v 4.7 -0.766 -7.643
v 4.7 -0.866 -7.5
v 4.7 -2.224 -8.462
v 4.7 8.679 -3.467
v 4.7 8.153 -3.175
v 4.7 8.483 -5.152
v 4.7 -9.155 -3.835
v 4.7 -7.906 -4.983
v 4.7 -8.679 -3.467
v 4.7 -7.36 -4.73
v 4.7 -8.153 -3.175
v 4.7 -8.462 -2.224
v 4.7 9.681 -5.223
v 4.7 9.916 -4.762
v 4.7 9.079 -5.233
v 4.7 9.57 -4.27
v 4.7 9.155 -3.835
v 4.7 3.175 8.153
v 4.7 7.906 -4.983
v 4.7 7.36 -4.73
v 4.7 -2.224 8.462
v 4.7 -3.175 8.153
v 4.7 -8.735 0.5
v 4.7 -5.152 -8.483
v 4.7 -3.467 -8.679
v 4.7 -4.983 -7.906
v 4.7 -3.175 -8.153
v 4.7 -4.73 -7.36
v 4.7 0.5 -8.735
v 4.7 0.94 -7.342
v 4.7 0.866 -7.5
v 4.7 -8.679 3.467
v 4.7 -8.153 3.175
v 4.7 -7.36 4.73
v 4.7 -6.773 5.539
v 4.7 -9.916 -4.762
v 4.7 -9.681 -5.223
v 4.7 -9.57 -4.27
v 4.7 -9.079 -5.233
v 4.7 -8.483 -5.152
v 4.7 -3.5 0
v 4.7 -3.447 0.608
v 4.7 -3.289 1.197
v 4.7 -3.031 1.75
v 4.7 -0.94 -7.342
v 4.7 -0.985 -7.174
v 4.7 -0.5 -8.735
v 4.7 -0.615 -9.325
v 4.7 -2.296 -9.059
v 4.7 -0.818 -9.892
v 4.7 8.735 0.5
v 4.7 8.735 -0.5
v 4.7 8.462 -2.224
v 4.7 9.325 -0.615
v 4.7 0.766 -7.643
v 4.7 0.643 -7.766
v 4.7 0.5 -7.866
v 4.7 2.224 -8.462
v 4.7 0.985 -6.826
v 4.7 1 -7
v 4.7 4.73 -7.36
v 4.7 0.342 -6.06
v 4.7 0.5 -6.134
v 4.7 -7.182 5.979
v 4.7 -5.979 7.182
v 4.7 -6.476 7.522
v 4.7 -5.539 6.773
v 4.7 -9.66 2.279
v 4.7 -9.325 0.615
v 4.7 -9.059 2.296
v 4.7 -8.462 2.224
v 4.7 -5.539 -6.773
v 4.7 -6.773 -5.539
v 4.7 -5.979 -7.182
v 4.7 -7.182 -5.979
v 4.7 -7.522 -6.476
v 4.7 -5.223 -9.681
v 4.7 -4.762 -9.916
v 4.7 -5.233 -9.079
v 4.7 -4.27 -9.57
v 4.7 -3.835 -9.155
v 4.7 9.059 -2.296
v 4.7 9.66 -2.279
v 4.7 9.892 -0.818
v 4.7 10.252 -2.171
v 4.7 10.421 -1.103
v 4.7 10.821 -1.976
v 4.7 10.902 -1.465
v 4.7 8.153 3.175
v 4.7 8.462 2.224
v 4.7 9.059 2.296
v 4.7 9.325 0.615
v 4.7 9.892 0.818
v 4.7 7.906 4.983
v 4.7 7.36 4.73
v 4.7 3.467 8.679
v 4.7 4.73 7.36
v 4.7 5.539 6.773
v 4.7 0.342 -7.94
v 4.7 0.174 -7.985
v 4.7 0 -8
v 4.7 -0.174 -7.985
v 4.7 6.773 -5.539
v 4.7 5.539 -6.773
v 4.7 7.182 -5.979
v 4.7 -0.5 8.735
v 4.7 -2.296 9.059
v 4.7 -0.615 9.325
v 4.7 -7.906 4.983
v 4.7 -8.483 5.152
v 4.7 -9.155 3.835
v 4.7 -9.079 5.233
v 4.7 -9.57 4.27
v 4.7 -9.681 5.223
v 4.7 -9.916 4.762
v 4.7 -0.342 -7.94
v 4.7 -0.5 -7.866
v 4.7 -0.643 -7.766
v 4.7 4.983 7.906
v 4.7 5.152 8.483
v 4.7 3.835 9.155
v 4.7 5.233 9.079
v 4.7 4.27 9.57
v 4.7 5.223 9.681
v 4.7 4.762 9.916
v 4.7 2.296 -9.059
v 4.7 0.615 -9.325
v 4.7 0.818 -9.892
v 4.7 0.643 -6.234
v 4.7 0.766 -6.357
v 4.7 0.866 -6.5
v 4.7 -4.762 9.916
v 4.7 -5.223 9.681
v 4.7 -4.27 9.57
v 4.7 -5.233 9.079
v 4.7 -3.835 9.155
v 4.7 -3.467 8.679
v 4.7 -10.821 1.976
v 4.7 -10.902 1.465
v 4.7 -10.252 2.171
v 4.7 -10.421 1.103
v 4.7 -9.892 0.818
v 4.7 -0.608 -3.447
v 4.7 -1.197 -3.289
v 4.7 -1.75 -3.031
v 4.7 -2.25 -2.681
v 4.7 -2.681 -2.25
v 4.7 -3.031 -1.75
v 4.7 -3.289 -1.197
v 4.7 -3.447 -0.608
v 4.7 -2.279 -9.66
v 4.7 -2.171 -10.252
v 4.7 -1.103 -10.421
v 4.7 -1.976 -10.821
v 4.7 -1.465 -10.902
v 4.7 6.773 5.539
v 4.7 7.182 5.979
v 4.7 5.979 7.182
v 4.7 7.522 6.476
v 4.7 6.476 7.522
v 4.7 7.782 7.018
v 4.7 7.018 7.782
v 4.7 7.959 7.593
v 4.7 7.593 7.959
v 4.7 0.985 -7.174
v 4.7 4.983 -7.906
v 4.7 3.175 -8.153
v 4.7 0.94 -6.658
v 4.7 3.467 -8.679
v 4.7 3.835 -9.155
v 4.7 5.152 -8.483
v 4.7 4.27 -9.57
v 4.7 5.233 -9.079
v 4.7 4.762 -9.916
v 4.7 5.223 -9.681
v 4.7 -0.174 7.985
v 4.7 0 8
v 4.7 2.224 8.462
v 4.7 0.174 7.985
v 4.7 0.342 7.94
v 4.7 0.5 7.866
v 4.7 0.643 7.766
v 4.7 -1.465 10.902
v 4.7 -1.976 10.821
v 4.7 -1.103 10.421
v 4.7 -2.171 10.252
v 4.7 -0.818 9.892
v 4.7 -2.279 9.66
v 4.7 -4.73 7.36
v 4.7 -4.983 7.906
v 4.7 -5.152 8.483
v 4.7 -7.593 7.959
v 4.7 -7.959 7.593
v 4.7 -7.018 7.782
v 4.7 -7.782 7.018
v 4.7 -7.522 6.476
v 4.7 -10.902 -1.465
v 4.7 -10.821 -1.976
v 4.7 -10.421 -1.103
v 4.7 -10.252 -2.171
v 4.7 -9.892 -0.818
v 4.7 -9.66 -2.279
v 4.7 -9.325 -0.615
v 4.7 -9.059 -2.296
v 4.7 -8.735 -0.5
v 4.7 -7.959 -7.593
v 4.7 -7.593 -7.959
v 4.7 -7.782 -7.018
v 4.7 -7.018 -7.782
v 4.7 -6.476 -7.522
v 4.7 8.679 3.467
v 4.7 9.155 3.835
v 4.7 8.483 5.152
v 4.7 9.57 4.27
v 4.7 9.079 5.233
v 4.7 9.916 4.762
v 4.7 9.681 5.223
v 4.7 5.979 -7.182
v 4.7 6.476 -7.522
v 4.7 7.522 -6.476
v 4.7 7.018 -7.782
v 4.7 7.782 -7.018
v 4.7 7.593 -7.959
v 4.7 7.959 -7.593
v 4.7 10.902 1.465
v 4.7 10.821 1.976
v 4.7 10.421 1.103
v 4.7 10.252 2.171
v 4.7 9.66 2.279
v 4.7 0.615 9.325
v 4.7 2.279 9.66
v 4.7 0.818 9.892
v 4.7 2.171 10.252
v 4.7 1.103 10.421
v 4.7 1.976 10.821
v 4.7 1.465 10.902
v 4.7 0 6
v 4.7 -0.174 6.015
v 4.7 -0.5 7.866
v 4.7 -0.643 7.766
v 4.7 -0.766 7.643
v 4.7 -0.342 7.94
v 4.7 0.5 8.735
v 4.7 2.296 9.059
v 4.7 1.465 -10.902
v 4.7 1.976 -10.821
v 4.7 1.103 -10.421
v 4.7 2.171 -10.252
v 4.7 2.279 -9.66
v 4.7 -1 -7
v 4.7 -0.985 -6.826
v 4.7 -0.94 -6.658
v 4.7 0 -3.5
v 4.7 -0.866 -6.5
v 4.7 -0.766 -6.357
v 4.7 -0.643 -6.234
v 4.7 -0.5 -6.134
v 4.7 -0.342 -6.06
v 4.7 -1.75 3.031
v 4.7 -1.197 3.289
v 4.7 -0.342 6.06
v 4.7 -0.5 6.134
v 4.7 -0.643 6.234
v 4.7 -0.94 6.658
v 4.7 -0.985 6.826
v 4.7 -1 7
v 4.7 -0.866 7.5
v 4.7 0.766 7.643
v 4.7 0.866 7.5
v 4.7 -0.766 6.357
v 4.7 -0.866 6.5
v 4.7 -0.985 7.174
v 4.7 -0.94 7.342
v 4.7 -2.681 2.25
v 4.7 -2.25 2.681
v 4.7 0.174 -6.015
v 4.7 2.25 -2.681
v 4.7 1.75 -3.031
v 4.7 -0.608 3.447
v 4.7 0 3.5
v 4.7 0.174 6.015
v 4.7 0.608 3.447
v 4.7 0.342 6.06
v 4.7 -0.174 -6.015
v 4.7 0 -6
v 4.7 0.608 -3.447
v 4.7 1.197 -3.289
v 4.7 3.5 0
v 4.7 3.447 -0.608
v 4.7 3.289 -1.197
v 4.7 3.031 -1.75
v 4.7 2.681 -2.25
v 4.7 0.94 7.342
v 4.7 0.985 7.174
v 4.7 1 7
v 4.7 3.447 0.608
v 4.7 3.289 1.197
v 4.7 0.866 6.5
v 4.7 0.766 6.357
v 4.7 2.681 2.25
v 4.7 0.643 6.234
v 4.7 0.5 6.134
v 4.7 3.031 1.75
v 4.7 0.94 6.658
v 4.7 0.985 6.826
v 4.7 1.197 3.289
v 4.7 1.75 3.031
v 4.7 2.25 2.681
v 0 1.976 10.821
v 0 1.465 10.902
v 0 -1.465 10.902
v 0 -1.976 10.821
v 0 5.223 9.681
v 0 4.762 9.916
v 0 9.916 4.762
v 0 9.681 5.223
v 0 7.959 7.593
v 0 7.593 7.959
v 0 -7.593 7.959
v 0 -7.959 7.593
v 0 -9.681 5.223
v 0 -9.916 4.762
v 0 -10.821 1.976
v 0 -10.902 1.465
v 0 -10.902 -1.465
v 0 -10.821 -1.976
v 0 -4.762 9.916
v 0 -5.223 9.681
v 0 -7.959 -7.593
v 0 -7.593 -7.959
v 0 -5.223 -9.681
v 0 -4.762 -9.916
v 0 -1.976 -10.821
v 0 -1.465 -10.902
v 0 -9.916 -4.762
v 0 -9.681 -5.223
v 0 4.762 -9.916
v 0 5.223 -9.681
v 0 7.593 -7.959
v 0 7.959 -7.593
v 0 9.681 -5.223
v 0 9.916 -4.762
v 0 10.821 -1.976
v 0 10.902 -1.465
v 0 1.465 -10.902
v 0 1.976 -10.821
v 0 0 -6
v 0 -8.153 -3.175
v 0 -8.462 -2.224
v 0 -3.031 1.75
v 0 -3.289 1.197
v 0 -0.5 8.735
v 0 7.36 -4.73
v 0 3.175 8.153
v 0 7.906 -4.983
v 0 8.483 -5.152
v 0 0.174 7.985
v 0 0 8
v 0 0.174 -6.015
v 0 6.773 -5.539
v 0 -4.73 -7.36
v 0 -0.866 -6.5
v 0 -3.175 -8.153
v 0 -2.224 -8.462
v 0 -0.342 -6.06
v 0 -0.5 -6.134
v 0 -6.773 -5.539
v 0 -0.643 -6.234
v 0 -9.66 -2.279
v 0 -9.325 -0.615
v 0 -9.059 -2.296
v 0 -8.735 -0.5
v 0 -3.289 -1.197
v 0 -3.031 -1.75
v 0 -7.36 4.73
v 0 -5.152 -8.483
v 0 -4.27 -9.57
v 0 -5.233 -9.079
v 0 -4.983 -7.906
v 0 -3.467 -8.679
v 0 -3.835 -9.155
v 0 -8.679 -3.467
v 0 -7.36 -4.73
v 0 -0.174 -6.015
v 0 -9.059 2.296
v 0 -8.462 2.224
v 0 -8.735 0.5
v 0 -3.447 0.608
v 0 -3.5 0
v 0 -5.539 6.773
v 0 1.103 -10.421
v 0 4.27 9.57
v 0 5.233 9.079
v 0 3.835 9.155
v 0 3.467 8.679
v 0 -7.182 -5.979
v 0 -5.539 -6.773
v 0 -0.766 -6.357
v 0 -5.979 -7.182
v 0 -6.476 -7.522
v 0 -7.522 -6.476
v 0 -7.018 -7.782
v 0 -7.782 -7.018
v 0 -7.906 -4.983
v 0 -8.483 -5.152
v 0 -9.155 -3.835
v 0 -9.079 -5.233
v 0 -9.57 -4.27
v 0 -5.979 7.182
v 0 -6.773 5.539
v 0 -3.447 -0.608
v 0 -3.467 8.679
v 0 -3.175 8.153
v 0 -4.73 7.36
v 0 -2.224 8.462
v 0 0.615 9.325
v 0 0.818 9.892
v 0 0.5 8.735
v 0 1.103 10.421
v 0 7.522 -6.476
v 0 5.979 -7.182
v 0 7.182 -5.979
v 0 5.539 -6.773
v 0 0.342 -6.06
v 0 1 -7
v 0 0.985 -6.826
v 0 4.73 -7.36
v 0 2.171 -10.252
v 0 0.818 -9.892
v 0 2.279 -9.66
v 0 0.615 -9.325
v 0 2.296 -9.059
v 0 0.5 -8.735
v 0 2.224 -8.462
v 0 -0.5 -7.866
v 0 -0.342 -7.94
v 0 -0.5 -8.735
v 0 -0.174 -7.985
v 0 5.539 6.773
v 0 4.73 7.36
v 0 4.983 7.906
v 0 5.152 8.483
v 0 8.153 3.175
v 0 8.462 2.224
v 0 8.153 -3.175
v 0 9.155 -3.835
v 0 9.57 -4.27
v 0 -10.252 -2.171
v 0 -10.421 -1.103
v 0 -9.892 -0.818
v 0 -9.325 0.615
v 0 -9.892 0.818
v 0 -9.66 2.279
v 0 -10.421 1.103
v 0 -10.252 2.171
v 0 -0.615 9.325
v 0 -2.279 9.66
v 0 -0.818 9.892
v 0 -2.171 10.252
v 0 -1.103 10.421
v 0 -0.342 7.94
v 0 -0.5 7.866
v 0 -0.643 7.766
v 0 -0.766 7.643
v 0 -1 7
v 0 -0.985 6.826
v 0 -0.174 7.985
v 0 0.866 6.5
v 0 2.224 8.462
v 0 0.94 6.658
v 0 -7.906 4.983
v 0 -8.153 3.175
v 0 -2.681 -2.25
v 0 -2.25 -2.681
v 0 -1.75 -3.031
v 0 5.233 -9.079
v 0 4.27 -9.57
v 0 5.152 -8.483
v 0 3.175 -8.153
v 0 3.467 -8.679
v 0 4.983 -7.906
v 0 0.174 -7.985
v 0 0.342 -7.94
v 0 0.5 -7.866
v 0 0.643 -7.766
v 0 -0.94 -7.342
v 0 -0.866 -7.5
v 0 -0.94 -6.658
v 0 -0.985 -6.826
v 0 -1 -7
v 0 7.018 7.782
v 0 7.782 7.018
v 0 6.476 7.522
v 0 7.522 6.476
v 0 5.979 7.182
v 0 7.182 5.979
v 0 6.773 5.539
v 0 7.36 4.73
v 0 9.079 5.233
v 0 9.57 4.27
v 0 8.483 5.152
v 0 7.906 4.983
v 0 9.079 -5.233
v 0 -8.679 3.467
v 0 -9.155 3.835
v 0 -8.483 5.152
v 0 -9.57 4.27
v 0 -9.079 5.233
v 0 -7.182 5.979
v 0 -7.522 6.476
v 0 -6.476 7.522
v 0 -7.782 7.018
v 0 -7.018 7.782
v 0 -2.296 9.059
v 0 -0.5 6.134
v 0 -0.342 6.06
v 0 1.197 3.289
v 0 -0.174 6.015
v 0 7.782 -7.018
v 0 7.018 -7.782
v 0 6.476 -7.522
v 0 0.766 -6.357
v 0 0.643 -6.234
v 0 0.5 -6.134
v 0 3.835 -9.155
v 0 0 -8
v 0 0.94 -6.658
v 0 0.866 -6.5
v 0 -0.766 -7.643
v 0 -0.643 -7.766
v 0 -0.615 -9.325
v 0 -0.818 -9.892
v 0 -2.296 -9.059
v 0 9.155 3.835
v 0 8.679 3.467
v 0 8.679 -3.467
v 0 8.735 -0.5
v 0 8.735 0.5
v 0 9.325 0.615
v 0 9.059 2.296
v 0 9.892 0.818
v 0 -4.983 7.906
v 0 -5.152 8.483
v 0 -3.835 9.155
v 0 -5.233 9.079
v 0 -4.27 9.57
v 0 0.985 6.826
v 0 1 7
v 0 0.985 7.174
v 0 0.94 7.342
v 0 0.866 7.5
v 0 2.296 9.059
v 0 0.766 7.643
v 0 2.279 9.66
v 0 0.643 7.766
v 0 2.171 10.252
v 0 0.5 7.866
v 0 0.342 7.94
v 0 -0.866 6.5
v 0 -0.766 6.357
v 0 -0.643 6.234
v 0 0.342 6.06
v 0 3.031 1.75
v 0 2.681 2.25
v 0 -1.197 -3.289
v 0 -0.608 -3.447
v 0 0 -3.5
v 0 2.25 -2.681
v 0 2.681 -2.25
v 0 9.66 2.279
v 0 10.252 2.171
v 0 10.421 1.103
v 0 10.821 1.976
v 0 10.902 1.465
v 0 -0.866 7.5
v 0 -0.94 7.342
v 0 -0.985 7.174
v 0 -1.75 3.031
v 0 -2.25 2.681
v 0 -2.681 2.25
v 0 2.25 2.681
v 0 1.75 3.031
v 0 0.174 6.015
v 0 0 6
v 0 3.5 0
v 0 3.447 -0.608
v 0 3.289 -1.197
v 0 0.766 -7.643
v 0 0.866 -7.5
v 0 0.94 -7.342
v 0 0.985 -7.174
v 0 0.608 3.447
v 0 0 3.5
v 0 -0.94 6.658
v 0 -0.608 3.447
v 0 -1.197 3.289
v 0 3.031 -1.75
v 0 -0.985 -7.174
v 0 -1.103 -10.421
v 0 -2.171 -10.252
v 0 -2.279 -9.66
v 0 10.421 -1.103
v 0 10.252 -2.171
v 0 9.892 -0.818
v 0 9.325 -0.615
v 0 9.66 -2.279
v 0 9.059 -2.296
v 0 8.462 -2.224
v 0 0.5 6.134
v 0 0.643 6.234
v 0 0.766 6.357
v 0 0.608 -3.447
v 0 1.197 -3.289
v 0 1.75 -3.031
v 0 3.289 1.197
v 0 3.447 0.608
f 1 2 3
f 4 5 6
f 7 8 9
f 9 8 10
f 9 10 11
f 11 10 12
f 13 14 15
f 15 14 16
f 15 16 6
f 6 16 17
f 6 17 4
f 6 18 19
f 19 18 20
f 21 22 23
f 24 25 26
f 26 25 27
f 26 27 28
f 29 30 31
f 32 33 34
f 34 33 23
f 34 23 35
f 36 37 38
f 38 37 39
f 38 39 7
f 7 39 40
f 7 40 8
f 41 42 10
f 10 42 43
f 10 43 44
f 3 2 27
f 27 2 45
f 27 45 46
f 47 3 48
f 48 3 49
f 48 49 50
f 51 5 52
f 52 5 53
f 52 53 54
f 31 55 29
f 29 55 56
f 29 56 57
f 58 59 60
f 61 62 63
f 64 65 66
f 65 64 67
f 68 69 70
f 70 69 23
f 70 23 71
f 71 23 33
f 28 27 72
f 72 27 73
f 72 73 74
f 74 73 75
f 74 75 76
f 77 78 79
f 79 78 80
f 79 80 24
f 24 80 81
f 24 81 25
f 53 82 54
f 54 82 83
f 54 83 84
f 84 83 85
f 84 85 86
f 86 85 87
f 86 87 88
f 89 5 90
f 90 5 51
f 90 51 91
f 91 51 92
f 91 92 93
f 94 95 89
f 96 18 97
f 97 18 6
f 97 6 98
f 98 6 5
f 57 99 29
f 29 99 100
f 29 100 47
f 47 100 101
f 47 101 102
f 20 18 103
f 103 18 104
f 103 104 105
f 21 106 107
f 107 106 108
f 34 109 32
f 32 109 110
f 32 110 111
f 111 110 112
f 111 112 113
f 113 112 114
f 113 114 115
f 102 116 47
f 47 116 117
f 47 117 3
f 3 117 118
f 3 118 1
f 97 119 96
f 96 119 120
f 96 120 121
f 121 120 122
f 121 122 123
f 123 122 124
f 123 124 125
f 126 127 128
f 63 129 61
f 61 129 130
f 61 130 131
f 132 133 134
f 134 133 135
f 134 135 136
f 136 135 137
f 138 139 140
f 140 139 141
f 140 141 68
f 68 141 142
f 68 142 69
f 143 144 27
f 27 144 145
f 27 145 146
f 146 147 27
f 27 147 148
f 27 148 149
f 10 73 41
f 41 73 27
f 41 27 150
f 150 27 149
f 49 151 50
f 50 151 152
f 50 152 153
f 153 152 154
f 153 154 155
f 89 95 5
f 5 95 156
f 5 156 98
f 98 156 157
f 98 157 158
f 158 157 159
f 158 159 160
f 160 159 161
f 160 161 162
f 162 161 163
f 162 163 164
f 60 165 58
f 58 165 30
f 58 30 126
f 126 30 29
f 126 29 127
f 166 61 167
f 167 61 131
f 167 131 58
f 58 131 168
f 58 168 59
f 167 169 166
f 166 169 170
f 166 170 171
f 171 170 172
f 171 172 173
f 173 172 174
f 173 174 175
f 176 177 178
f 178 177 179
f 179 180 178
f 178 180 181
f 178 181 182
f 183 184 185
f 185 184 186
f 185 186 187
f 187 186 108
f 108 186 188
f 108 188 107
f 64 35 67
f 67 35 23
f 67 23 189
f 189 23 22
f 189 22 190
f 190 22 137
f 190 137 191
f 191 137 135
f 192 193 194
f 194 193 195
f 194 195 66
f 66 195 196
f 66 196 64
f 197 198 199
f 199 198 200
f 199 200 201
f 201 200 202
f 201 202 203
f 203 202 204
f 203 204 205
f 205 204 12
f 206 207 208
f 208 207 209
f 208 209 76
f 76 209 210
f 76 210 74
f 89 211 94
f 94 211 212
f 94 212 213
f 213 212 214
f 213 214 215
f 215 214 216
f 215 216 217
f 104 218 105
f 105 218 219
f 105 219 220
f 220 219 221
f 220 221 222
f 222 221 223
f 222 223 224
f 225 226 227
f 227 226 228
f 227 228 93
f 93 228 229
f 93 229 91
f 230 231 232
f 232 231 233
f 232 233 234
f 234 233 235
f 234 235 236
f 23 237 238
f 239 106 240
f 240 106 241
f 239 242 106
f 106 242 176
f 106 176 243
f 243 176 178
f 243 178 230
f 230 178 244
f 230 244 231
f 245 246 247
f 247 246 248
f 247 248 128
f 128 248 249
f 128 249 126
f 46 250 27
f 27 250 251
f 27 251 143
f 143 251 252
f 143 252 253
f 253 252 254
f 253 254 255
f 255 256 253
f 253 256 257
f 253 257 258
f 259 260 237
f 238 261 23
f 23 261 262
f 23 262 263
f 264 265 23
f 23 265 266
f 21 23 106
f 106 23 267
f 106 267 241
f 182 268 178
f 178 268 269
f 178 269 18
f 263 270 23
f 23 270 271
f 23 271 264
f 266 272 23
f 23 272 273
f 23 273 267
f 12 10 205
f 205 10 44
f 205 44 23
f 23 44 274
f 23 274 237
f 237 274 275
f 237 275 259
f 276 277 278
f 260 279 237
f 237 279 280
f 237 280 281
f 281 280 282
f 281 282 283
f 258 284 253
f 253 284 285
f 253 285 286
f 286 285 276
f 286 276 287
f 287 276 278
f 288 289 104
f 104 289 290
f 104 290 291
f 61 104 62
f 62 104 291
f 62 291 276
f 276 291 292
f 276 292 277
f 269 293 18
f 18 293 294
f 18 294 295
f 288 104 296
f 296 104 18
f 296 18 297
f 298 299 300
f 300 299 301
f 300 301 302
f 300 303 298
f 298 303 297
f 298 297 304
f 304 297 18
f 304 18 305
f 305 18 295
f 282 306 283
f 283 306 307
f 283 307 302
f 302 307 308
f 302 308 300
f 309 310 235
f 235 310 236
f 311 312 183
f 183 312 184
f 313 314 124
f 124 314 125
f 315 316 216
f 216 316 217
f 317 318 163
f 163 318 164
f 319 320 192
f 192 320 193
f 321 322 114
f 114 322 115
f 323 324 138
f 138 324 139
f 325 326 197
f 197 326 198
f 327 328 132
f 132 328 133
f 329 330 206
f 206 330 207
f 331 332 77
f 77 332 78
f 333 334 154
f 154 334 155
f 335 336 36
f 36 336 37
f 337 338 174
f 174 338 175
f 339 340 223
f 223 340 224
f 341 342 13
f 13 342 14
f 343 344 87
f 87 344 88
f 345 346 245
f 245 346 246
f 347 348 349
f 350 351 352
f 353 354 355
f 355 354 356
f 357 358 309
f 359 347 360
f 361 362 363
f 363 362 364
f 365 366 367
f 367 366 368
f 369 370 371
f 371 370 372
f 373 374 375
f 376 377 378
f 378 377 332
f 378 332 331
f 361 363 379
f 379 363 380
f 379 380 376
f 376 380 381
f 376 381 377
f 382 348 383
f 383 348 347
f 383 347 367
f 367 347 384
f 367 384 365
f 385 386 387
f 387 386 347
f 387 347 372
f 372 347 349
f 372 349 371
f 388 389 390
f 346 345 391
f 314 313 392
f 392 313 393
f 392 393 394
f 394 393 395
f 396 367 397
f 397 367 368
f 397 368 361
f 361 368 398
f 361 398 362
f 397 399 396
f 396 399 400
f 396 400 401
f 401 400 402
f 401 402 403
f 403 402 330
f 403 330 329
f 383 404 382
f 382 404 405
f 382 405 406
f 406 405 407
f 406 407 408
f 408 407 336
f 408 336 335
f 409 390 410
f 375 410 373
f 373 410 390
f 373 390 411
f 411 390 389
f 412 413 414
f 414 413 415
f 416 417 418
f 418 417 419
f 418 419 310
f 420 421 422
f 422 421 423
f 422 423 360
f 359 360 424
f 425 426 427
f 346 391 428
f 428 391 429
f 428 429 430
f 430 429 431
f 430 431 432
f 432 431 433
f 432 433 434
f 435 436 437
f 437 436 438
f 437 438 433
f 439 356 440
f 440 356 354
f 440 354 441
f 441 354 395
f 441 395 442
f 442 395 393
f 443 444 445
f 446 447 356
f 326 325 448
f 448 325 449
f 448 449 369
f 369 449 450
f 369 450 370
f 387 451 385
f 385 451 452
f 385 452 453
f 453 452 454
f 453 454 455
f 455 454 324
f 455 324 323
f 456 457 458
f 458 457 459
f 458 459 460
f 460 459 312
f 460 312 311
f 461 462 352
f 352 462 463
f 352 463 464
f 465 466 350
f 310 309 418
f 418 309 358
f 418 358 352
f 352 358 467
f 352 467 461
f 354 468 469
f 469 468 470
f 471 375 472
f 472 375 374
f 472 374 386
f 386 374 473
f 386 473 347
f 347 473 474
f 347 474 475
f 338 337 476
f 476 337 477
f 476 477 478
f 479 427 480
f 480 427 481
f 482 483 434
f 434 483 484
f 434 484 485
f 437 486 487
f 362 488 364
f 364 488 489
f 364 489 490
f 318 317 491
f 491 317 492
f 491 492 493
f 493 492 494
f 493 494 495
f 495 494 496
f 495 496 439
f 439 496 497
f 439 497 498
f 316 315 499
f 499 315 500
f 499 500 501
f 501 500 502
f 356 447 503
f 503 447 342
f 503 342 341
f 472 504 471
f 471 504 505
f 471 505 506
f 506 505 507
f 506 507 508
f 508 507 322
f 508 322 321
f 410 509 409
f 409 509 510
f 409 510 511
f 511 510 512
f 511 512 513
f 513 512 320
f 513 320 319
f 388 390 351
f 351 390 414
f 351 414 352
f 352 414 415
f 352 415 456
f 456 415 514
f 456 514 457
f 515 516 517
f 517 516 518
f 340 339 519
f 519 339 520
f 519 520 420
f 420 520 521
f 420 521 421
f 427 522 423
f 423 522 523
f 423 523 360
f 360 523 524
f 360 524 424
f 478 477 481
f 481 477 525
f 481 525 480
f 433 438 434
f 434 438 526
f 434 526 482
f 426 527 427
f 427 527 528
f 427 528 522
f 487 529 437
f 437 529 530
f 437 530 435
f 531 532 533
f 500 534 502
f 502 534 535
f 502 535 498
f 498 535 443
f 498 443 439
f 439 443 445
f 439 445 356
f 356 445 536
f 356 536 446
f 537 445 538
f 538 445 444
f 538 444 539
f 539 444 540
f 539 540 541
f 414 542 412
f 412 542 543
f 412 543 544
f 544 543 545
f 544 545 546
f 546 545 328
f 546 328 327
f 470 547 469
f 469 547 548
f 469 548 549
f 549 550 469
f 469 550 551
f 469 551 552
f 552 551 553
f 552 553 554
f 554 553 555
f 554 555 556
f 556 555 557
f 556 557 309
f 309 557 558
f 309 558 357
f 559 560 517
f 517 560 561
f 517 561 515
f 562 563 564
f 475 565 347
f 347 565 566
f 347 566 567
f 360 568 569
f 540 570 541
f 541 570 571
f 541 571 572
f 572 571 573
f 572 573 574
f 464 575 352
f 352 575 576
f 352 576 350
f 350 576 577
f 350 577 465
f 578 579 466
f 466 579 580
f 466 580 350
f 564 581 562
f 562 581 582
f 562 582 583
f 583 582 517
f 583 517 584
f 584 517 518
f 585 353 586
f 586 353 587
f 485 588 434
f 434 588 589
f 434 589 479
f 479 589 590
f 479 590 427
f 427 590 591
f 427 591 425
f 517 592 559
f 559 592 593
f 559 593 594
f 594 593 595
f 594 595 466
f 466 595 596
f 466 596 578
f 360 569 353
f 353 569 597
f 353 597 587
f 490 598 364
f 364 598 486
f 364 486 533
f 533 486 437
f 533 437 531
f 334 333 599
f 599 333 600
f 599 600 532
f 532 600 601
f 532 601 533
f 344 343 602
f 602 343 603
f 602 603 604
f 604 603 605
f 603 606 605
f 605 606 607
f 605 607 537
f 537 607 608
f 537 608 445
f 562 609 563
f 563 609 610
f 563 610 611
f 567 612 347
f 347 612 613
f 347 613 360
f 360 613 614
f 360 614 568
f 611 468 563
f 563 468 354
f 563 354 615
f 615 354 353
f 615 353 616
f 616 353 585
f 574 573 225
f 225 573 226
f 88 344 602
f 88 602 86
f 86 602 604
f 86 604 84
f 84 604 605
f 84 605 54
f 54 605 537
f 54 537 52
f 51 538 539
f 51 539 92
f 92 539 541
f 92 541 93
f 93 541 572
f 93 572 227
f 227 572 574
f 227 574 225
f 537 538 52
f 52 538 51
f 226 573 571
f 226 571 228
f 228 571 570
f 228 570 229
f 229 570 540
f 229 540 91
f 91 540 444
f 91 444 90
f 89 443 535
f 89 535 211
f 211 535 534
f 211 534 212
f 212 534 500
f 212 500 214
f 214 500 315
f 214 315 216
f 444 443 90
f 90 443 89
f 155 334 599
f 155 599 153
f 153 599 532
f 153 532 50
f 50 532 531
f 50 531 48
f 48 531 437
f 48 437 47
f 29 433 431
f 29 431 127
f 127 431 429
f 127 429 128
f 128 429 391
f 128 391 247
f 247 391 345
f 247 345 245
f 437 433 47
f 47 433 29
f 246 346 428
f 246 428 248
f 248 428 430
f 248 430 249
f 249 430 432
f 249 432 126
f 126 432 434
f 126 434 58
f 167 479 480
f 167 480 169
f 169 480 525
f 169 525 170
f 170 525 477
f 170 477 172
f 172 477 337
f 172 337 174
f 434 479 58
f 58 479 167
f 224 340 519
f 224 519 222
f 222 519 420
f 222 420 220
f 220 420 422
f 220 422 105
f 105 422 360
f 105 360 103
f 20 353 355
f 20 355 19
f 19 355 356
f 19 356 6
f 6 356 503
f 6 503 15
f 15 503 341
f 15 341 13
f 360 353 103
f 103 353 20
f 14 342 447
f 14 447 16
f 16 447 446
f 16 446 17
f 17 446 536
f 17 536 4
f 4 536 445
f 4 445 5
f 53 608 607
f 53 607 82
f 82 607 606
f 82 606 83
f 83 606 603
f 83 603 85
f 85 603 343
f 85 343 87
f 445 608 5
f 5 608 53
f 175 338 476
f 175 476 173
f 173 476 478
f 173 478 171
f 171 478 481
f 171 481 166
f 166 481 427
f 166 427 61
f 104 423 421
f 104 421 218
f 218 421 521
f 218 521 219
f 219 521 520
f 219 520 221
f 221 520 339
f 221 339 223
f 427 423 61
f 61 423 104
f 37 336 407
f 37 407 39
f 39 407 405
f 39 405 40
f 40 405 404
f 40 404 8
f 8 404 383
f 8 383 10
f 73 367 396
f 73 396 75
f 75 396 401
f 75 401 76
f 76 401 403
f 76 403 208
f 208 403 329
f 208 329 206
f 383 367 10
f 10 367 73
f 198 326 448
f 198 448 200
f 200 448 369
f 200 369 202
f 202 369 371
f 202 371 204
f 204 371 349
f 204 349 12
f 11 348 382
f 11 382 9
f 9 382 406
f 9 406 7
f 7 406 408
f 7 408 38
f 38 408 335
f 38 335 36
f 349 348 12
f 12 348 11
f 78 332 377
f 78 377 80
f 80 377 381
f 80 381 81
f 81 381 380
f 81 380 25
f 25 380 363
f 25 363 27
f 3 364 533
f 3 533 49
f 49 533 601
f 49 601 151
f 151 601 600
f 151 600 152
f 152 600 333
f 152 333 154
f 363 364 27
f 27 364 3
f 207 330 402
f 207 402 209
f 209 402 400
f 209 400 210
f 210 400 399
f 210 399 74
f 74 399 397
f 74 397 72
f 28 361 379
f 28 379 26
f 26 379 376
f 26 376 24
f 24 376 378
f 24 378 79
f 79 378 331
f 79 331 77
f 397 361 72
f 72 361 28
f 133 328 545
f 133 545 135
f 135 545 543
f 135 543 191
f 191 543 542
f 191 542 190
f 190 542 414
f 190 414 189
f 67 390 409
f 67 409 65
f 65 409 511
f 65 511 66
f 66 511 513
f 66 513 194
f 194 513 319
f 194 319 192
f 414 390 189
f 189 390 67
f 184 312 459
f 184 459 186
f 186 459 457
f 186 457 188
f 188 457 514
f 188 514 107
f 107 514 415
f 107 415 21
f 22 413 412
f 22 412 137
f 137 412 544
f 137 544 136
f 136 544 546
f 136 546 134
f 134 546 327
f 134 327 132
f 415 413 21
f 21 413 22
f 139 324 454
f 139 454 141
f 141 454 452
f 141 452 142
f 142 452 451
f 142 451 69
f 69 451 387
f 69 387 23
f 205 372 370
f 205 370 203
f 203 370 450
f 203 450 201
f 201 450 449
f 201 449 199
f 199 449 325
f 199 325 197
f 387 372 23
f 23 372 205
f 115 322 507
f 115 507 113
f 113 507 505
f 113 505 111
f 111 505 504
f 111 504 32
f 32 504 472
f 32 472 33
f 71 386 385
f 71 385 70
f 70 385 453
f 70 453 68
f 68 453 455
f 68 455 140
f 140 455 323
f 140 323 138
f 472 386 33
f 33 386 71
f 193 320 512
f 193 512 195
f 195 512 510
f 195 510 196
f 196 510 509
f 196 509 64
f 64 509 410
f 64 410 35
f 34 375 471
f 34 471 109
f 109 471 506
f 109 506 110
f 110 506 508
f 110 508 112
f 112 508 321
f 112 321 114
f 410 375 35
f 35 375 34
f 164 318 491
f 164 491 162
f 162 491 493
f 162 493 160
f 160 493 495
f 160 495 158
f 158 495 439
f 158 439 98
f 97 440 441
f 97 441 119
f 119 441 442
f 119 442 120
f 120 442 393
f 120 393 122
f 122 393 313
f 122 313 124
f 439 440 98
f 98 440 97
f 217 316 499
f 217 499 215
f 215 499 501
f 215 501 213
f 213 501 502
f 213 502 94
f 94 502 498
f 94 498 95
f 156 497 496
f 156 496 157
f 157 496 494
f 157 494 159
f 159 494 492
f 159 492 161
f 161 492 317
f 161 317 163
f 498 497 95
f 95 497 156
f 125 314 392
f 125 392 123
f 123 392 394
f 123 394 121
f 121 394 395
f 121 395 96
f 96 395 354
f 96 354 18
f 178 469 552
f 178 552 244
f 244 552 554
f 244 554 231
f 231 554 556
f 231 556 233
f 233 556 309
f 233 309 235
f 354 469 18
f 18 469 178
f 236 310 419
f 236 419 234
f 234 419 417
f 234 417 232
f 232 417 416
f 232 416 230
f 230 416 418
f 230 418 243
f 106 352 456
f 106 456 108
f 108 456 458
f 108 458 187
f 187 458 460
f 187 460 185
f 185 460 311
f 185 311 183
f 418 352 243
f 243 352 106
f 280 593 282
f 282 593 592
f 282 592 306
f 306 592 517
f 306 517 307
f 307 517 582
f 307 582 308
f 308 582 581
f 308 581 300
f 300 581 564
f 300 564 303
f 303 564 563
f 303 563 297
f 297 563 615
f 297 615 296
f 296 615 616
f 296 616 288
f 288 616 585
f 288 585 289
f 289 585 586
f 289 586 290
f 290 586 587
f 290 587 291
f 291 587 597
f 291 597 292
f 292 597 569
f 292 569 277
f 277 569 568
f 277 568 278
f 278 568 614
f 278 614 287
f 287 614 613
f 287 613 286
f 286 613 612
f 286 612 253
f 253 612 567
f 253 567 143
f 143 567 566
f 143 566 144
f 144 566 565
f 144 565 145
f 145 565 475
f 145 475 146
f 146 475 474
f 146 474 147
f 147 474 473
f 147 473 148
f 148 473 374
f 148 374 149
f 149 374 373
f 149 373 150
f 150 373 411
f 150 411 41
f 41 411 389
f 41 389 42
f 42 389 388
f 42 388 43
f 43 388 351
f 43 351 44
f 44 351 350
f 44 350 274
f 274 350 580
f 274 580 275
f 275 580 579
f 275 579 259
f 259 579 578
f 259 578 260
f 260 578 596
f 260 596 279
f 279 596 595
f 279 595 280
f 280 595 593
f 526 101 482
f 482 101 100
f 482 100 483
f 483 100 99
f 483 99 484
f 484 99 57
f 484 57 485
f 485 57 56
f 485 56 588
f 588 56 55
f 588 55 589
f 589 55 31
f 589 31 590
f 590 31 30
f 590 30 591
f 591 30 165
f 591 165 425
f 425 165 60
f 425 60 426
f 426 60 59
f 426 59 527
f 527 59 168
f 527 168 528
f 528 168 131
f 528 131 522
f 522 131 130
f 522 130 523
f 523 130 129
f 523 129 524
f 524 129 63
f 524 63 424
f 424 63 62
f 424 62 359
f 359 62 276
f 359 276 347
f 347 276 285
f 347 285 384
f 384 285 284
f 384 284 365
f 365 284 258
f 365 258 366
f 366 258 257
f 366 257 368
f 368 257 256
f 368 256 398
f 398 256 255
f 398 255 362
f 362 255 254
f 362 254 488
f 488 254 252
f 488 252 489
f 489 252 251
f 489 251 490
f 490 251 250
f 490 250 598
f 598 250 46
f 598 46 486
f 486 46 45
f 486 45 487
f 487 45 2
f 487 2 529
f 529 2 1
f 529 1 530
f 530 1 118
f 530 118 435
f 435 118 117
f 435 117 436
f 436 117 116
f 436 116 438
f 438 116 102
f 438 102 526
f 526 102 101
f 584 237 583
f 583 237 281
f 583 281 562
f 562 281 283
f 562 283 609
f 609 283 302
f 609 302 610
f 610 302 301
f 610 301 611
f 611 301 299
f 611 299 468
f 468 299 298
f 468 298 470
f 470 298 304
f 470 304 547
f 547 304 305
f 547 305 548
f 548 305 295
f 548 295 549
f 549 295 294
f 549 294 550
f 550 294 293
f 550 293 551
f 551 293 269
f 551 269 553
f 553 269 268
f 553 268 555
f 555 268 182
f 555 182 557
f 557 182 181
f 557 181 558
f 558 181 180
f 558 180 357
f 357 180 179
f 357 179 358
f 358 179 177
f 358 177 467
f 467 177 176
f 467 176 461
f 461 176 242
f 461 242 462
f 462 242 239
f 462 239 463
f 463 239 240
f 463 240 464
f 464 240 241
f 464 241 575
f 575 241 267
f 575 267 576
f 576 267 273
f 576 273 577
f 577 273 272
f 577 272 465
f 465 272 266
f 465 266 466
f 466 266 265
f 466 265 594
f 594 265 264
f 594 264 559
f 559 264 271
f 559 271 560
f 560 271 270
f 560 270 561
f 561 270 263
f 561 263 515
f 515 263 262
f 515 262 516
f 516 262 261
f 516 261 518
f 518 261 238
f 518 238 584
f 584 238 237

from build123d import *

# Parameters (mm, degrees)
BASPROSKE_W        = 4.7
BASPROSKE_H        = 11
TOOTHCUT_DEPTH     = 17.250846132
TEETHCUTS_COUNT    = 20
TEETHCUTS_ANGLE    = 342
BORSKE_R           = 3.5
BORE_DEPTH         = 50.0000508
SKETCH1_R          = 1
CUT_EXTRUDE1_DEPTH = 17.118244485


with BuildPart() as part:
    # BasProSke → Base-Revolve (revolve)
    with BuildSketch(Plane(origin=(0, 0, 0), x_dir=(1, 0, 0), z_dir=(0, 1, 0)), mode=Mode.PRIVATE) as base_revolve_sk:
        with Locations((2.35, 5.5)):
            Rectangle(BASPROSKE_W, BASPROSKE_H)
    revolve(base_revolve_sk.sketch.rotate(Axis((-10, 0, 0), (1, 0, 0)), 180), axis=Axis((-10, 0, 0), (1, 0, 0)))

    # TooCutSke → ToothCut (cut, through all)
    with BuildSketch(Plane(origin=(0, 0, 0), x_dir=(0, 0, -1), z_dir=(1, 0, 0))):
        with BuildLine():
            ThreePointArc((0.499924007, 8.734705318), (0, 8.749), (-0.499924007, 8.734705318))
            ThreePointArc((-0.499924007, 8.734705318), (-0.824302243, 9.905497836), (-1.485192705, 10.924909509))
            ThreePointArc((-1.485192705, 10.924909509), (0, 11.0254), (1.485192705, 10.924909509))
            ThreePointArc((1.485192705, 10.924909509), (0.824302243, 9.905497836), (0.499924007, 8.734705318))
        make_face()
    toothcut = extrude(amount=TOOTHCUT_DEPTH, mode=Mode.SUBTRACT)

    # TeethCuts: ToothCut ×20 about axis
    teethcuts_axis = Axis((-10, 0, 0), (1, 0, 0))
    for i in range(1, TEETHCUTS_COUNT):
        add(toothcut.rotate(teethcuts_axis, i * TEETHCUTS_ANGLE / (TEETHCUTS_COUNT - 1)), mode=Mode.SUBTRACT)

    # BorSke → Bore (cut, symmetric)
    with BuildSketch(Plane(origin=(0, 0, 0), x_dir=(0, 0, -1), z_dir=(1, 0, 0))):
        with Locations(Location((0, 0, 0), (0, 0, 180))):
            Circle(BORSKE_R)
    extrude(amount=BORE_DEPTH, both=True, mode=Mode.SUBTRACT)

    # Sketch1 → Cut-Extrude1 (cut, through all)
    with BuildSketch(Plane(origin=(4.7, 0, 0), x_dir=(0, 0, -1), z_dir=(1, 0, 0))):
        with Locations((-7, 0)):
            Circle(SKETCH1_R)
        with Locations((7, 0)):
            Circle(SKETCH1_R)
    extrude(amount=-CUT_EXTRUDE1_DEPTH, mode=Mode.SUBTRACT)


solid = part.part
